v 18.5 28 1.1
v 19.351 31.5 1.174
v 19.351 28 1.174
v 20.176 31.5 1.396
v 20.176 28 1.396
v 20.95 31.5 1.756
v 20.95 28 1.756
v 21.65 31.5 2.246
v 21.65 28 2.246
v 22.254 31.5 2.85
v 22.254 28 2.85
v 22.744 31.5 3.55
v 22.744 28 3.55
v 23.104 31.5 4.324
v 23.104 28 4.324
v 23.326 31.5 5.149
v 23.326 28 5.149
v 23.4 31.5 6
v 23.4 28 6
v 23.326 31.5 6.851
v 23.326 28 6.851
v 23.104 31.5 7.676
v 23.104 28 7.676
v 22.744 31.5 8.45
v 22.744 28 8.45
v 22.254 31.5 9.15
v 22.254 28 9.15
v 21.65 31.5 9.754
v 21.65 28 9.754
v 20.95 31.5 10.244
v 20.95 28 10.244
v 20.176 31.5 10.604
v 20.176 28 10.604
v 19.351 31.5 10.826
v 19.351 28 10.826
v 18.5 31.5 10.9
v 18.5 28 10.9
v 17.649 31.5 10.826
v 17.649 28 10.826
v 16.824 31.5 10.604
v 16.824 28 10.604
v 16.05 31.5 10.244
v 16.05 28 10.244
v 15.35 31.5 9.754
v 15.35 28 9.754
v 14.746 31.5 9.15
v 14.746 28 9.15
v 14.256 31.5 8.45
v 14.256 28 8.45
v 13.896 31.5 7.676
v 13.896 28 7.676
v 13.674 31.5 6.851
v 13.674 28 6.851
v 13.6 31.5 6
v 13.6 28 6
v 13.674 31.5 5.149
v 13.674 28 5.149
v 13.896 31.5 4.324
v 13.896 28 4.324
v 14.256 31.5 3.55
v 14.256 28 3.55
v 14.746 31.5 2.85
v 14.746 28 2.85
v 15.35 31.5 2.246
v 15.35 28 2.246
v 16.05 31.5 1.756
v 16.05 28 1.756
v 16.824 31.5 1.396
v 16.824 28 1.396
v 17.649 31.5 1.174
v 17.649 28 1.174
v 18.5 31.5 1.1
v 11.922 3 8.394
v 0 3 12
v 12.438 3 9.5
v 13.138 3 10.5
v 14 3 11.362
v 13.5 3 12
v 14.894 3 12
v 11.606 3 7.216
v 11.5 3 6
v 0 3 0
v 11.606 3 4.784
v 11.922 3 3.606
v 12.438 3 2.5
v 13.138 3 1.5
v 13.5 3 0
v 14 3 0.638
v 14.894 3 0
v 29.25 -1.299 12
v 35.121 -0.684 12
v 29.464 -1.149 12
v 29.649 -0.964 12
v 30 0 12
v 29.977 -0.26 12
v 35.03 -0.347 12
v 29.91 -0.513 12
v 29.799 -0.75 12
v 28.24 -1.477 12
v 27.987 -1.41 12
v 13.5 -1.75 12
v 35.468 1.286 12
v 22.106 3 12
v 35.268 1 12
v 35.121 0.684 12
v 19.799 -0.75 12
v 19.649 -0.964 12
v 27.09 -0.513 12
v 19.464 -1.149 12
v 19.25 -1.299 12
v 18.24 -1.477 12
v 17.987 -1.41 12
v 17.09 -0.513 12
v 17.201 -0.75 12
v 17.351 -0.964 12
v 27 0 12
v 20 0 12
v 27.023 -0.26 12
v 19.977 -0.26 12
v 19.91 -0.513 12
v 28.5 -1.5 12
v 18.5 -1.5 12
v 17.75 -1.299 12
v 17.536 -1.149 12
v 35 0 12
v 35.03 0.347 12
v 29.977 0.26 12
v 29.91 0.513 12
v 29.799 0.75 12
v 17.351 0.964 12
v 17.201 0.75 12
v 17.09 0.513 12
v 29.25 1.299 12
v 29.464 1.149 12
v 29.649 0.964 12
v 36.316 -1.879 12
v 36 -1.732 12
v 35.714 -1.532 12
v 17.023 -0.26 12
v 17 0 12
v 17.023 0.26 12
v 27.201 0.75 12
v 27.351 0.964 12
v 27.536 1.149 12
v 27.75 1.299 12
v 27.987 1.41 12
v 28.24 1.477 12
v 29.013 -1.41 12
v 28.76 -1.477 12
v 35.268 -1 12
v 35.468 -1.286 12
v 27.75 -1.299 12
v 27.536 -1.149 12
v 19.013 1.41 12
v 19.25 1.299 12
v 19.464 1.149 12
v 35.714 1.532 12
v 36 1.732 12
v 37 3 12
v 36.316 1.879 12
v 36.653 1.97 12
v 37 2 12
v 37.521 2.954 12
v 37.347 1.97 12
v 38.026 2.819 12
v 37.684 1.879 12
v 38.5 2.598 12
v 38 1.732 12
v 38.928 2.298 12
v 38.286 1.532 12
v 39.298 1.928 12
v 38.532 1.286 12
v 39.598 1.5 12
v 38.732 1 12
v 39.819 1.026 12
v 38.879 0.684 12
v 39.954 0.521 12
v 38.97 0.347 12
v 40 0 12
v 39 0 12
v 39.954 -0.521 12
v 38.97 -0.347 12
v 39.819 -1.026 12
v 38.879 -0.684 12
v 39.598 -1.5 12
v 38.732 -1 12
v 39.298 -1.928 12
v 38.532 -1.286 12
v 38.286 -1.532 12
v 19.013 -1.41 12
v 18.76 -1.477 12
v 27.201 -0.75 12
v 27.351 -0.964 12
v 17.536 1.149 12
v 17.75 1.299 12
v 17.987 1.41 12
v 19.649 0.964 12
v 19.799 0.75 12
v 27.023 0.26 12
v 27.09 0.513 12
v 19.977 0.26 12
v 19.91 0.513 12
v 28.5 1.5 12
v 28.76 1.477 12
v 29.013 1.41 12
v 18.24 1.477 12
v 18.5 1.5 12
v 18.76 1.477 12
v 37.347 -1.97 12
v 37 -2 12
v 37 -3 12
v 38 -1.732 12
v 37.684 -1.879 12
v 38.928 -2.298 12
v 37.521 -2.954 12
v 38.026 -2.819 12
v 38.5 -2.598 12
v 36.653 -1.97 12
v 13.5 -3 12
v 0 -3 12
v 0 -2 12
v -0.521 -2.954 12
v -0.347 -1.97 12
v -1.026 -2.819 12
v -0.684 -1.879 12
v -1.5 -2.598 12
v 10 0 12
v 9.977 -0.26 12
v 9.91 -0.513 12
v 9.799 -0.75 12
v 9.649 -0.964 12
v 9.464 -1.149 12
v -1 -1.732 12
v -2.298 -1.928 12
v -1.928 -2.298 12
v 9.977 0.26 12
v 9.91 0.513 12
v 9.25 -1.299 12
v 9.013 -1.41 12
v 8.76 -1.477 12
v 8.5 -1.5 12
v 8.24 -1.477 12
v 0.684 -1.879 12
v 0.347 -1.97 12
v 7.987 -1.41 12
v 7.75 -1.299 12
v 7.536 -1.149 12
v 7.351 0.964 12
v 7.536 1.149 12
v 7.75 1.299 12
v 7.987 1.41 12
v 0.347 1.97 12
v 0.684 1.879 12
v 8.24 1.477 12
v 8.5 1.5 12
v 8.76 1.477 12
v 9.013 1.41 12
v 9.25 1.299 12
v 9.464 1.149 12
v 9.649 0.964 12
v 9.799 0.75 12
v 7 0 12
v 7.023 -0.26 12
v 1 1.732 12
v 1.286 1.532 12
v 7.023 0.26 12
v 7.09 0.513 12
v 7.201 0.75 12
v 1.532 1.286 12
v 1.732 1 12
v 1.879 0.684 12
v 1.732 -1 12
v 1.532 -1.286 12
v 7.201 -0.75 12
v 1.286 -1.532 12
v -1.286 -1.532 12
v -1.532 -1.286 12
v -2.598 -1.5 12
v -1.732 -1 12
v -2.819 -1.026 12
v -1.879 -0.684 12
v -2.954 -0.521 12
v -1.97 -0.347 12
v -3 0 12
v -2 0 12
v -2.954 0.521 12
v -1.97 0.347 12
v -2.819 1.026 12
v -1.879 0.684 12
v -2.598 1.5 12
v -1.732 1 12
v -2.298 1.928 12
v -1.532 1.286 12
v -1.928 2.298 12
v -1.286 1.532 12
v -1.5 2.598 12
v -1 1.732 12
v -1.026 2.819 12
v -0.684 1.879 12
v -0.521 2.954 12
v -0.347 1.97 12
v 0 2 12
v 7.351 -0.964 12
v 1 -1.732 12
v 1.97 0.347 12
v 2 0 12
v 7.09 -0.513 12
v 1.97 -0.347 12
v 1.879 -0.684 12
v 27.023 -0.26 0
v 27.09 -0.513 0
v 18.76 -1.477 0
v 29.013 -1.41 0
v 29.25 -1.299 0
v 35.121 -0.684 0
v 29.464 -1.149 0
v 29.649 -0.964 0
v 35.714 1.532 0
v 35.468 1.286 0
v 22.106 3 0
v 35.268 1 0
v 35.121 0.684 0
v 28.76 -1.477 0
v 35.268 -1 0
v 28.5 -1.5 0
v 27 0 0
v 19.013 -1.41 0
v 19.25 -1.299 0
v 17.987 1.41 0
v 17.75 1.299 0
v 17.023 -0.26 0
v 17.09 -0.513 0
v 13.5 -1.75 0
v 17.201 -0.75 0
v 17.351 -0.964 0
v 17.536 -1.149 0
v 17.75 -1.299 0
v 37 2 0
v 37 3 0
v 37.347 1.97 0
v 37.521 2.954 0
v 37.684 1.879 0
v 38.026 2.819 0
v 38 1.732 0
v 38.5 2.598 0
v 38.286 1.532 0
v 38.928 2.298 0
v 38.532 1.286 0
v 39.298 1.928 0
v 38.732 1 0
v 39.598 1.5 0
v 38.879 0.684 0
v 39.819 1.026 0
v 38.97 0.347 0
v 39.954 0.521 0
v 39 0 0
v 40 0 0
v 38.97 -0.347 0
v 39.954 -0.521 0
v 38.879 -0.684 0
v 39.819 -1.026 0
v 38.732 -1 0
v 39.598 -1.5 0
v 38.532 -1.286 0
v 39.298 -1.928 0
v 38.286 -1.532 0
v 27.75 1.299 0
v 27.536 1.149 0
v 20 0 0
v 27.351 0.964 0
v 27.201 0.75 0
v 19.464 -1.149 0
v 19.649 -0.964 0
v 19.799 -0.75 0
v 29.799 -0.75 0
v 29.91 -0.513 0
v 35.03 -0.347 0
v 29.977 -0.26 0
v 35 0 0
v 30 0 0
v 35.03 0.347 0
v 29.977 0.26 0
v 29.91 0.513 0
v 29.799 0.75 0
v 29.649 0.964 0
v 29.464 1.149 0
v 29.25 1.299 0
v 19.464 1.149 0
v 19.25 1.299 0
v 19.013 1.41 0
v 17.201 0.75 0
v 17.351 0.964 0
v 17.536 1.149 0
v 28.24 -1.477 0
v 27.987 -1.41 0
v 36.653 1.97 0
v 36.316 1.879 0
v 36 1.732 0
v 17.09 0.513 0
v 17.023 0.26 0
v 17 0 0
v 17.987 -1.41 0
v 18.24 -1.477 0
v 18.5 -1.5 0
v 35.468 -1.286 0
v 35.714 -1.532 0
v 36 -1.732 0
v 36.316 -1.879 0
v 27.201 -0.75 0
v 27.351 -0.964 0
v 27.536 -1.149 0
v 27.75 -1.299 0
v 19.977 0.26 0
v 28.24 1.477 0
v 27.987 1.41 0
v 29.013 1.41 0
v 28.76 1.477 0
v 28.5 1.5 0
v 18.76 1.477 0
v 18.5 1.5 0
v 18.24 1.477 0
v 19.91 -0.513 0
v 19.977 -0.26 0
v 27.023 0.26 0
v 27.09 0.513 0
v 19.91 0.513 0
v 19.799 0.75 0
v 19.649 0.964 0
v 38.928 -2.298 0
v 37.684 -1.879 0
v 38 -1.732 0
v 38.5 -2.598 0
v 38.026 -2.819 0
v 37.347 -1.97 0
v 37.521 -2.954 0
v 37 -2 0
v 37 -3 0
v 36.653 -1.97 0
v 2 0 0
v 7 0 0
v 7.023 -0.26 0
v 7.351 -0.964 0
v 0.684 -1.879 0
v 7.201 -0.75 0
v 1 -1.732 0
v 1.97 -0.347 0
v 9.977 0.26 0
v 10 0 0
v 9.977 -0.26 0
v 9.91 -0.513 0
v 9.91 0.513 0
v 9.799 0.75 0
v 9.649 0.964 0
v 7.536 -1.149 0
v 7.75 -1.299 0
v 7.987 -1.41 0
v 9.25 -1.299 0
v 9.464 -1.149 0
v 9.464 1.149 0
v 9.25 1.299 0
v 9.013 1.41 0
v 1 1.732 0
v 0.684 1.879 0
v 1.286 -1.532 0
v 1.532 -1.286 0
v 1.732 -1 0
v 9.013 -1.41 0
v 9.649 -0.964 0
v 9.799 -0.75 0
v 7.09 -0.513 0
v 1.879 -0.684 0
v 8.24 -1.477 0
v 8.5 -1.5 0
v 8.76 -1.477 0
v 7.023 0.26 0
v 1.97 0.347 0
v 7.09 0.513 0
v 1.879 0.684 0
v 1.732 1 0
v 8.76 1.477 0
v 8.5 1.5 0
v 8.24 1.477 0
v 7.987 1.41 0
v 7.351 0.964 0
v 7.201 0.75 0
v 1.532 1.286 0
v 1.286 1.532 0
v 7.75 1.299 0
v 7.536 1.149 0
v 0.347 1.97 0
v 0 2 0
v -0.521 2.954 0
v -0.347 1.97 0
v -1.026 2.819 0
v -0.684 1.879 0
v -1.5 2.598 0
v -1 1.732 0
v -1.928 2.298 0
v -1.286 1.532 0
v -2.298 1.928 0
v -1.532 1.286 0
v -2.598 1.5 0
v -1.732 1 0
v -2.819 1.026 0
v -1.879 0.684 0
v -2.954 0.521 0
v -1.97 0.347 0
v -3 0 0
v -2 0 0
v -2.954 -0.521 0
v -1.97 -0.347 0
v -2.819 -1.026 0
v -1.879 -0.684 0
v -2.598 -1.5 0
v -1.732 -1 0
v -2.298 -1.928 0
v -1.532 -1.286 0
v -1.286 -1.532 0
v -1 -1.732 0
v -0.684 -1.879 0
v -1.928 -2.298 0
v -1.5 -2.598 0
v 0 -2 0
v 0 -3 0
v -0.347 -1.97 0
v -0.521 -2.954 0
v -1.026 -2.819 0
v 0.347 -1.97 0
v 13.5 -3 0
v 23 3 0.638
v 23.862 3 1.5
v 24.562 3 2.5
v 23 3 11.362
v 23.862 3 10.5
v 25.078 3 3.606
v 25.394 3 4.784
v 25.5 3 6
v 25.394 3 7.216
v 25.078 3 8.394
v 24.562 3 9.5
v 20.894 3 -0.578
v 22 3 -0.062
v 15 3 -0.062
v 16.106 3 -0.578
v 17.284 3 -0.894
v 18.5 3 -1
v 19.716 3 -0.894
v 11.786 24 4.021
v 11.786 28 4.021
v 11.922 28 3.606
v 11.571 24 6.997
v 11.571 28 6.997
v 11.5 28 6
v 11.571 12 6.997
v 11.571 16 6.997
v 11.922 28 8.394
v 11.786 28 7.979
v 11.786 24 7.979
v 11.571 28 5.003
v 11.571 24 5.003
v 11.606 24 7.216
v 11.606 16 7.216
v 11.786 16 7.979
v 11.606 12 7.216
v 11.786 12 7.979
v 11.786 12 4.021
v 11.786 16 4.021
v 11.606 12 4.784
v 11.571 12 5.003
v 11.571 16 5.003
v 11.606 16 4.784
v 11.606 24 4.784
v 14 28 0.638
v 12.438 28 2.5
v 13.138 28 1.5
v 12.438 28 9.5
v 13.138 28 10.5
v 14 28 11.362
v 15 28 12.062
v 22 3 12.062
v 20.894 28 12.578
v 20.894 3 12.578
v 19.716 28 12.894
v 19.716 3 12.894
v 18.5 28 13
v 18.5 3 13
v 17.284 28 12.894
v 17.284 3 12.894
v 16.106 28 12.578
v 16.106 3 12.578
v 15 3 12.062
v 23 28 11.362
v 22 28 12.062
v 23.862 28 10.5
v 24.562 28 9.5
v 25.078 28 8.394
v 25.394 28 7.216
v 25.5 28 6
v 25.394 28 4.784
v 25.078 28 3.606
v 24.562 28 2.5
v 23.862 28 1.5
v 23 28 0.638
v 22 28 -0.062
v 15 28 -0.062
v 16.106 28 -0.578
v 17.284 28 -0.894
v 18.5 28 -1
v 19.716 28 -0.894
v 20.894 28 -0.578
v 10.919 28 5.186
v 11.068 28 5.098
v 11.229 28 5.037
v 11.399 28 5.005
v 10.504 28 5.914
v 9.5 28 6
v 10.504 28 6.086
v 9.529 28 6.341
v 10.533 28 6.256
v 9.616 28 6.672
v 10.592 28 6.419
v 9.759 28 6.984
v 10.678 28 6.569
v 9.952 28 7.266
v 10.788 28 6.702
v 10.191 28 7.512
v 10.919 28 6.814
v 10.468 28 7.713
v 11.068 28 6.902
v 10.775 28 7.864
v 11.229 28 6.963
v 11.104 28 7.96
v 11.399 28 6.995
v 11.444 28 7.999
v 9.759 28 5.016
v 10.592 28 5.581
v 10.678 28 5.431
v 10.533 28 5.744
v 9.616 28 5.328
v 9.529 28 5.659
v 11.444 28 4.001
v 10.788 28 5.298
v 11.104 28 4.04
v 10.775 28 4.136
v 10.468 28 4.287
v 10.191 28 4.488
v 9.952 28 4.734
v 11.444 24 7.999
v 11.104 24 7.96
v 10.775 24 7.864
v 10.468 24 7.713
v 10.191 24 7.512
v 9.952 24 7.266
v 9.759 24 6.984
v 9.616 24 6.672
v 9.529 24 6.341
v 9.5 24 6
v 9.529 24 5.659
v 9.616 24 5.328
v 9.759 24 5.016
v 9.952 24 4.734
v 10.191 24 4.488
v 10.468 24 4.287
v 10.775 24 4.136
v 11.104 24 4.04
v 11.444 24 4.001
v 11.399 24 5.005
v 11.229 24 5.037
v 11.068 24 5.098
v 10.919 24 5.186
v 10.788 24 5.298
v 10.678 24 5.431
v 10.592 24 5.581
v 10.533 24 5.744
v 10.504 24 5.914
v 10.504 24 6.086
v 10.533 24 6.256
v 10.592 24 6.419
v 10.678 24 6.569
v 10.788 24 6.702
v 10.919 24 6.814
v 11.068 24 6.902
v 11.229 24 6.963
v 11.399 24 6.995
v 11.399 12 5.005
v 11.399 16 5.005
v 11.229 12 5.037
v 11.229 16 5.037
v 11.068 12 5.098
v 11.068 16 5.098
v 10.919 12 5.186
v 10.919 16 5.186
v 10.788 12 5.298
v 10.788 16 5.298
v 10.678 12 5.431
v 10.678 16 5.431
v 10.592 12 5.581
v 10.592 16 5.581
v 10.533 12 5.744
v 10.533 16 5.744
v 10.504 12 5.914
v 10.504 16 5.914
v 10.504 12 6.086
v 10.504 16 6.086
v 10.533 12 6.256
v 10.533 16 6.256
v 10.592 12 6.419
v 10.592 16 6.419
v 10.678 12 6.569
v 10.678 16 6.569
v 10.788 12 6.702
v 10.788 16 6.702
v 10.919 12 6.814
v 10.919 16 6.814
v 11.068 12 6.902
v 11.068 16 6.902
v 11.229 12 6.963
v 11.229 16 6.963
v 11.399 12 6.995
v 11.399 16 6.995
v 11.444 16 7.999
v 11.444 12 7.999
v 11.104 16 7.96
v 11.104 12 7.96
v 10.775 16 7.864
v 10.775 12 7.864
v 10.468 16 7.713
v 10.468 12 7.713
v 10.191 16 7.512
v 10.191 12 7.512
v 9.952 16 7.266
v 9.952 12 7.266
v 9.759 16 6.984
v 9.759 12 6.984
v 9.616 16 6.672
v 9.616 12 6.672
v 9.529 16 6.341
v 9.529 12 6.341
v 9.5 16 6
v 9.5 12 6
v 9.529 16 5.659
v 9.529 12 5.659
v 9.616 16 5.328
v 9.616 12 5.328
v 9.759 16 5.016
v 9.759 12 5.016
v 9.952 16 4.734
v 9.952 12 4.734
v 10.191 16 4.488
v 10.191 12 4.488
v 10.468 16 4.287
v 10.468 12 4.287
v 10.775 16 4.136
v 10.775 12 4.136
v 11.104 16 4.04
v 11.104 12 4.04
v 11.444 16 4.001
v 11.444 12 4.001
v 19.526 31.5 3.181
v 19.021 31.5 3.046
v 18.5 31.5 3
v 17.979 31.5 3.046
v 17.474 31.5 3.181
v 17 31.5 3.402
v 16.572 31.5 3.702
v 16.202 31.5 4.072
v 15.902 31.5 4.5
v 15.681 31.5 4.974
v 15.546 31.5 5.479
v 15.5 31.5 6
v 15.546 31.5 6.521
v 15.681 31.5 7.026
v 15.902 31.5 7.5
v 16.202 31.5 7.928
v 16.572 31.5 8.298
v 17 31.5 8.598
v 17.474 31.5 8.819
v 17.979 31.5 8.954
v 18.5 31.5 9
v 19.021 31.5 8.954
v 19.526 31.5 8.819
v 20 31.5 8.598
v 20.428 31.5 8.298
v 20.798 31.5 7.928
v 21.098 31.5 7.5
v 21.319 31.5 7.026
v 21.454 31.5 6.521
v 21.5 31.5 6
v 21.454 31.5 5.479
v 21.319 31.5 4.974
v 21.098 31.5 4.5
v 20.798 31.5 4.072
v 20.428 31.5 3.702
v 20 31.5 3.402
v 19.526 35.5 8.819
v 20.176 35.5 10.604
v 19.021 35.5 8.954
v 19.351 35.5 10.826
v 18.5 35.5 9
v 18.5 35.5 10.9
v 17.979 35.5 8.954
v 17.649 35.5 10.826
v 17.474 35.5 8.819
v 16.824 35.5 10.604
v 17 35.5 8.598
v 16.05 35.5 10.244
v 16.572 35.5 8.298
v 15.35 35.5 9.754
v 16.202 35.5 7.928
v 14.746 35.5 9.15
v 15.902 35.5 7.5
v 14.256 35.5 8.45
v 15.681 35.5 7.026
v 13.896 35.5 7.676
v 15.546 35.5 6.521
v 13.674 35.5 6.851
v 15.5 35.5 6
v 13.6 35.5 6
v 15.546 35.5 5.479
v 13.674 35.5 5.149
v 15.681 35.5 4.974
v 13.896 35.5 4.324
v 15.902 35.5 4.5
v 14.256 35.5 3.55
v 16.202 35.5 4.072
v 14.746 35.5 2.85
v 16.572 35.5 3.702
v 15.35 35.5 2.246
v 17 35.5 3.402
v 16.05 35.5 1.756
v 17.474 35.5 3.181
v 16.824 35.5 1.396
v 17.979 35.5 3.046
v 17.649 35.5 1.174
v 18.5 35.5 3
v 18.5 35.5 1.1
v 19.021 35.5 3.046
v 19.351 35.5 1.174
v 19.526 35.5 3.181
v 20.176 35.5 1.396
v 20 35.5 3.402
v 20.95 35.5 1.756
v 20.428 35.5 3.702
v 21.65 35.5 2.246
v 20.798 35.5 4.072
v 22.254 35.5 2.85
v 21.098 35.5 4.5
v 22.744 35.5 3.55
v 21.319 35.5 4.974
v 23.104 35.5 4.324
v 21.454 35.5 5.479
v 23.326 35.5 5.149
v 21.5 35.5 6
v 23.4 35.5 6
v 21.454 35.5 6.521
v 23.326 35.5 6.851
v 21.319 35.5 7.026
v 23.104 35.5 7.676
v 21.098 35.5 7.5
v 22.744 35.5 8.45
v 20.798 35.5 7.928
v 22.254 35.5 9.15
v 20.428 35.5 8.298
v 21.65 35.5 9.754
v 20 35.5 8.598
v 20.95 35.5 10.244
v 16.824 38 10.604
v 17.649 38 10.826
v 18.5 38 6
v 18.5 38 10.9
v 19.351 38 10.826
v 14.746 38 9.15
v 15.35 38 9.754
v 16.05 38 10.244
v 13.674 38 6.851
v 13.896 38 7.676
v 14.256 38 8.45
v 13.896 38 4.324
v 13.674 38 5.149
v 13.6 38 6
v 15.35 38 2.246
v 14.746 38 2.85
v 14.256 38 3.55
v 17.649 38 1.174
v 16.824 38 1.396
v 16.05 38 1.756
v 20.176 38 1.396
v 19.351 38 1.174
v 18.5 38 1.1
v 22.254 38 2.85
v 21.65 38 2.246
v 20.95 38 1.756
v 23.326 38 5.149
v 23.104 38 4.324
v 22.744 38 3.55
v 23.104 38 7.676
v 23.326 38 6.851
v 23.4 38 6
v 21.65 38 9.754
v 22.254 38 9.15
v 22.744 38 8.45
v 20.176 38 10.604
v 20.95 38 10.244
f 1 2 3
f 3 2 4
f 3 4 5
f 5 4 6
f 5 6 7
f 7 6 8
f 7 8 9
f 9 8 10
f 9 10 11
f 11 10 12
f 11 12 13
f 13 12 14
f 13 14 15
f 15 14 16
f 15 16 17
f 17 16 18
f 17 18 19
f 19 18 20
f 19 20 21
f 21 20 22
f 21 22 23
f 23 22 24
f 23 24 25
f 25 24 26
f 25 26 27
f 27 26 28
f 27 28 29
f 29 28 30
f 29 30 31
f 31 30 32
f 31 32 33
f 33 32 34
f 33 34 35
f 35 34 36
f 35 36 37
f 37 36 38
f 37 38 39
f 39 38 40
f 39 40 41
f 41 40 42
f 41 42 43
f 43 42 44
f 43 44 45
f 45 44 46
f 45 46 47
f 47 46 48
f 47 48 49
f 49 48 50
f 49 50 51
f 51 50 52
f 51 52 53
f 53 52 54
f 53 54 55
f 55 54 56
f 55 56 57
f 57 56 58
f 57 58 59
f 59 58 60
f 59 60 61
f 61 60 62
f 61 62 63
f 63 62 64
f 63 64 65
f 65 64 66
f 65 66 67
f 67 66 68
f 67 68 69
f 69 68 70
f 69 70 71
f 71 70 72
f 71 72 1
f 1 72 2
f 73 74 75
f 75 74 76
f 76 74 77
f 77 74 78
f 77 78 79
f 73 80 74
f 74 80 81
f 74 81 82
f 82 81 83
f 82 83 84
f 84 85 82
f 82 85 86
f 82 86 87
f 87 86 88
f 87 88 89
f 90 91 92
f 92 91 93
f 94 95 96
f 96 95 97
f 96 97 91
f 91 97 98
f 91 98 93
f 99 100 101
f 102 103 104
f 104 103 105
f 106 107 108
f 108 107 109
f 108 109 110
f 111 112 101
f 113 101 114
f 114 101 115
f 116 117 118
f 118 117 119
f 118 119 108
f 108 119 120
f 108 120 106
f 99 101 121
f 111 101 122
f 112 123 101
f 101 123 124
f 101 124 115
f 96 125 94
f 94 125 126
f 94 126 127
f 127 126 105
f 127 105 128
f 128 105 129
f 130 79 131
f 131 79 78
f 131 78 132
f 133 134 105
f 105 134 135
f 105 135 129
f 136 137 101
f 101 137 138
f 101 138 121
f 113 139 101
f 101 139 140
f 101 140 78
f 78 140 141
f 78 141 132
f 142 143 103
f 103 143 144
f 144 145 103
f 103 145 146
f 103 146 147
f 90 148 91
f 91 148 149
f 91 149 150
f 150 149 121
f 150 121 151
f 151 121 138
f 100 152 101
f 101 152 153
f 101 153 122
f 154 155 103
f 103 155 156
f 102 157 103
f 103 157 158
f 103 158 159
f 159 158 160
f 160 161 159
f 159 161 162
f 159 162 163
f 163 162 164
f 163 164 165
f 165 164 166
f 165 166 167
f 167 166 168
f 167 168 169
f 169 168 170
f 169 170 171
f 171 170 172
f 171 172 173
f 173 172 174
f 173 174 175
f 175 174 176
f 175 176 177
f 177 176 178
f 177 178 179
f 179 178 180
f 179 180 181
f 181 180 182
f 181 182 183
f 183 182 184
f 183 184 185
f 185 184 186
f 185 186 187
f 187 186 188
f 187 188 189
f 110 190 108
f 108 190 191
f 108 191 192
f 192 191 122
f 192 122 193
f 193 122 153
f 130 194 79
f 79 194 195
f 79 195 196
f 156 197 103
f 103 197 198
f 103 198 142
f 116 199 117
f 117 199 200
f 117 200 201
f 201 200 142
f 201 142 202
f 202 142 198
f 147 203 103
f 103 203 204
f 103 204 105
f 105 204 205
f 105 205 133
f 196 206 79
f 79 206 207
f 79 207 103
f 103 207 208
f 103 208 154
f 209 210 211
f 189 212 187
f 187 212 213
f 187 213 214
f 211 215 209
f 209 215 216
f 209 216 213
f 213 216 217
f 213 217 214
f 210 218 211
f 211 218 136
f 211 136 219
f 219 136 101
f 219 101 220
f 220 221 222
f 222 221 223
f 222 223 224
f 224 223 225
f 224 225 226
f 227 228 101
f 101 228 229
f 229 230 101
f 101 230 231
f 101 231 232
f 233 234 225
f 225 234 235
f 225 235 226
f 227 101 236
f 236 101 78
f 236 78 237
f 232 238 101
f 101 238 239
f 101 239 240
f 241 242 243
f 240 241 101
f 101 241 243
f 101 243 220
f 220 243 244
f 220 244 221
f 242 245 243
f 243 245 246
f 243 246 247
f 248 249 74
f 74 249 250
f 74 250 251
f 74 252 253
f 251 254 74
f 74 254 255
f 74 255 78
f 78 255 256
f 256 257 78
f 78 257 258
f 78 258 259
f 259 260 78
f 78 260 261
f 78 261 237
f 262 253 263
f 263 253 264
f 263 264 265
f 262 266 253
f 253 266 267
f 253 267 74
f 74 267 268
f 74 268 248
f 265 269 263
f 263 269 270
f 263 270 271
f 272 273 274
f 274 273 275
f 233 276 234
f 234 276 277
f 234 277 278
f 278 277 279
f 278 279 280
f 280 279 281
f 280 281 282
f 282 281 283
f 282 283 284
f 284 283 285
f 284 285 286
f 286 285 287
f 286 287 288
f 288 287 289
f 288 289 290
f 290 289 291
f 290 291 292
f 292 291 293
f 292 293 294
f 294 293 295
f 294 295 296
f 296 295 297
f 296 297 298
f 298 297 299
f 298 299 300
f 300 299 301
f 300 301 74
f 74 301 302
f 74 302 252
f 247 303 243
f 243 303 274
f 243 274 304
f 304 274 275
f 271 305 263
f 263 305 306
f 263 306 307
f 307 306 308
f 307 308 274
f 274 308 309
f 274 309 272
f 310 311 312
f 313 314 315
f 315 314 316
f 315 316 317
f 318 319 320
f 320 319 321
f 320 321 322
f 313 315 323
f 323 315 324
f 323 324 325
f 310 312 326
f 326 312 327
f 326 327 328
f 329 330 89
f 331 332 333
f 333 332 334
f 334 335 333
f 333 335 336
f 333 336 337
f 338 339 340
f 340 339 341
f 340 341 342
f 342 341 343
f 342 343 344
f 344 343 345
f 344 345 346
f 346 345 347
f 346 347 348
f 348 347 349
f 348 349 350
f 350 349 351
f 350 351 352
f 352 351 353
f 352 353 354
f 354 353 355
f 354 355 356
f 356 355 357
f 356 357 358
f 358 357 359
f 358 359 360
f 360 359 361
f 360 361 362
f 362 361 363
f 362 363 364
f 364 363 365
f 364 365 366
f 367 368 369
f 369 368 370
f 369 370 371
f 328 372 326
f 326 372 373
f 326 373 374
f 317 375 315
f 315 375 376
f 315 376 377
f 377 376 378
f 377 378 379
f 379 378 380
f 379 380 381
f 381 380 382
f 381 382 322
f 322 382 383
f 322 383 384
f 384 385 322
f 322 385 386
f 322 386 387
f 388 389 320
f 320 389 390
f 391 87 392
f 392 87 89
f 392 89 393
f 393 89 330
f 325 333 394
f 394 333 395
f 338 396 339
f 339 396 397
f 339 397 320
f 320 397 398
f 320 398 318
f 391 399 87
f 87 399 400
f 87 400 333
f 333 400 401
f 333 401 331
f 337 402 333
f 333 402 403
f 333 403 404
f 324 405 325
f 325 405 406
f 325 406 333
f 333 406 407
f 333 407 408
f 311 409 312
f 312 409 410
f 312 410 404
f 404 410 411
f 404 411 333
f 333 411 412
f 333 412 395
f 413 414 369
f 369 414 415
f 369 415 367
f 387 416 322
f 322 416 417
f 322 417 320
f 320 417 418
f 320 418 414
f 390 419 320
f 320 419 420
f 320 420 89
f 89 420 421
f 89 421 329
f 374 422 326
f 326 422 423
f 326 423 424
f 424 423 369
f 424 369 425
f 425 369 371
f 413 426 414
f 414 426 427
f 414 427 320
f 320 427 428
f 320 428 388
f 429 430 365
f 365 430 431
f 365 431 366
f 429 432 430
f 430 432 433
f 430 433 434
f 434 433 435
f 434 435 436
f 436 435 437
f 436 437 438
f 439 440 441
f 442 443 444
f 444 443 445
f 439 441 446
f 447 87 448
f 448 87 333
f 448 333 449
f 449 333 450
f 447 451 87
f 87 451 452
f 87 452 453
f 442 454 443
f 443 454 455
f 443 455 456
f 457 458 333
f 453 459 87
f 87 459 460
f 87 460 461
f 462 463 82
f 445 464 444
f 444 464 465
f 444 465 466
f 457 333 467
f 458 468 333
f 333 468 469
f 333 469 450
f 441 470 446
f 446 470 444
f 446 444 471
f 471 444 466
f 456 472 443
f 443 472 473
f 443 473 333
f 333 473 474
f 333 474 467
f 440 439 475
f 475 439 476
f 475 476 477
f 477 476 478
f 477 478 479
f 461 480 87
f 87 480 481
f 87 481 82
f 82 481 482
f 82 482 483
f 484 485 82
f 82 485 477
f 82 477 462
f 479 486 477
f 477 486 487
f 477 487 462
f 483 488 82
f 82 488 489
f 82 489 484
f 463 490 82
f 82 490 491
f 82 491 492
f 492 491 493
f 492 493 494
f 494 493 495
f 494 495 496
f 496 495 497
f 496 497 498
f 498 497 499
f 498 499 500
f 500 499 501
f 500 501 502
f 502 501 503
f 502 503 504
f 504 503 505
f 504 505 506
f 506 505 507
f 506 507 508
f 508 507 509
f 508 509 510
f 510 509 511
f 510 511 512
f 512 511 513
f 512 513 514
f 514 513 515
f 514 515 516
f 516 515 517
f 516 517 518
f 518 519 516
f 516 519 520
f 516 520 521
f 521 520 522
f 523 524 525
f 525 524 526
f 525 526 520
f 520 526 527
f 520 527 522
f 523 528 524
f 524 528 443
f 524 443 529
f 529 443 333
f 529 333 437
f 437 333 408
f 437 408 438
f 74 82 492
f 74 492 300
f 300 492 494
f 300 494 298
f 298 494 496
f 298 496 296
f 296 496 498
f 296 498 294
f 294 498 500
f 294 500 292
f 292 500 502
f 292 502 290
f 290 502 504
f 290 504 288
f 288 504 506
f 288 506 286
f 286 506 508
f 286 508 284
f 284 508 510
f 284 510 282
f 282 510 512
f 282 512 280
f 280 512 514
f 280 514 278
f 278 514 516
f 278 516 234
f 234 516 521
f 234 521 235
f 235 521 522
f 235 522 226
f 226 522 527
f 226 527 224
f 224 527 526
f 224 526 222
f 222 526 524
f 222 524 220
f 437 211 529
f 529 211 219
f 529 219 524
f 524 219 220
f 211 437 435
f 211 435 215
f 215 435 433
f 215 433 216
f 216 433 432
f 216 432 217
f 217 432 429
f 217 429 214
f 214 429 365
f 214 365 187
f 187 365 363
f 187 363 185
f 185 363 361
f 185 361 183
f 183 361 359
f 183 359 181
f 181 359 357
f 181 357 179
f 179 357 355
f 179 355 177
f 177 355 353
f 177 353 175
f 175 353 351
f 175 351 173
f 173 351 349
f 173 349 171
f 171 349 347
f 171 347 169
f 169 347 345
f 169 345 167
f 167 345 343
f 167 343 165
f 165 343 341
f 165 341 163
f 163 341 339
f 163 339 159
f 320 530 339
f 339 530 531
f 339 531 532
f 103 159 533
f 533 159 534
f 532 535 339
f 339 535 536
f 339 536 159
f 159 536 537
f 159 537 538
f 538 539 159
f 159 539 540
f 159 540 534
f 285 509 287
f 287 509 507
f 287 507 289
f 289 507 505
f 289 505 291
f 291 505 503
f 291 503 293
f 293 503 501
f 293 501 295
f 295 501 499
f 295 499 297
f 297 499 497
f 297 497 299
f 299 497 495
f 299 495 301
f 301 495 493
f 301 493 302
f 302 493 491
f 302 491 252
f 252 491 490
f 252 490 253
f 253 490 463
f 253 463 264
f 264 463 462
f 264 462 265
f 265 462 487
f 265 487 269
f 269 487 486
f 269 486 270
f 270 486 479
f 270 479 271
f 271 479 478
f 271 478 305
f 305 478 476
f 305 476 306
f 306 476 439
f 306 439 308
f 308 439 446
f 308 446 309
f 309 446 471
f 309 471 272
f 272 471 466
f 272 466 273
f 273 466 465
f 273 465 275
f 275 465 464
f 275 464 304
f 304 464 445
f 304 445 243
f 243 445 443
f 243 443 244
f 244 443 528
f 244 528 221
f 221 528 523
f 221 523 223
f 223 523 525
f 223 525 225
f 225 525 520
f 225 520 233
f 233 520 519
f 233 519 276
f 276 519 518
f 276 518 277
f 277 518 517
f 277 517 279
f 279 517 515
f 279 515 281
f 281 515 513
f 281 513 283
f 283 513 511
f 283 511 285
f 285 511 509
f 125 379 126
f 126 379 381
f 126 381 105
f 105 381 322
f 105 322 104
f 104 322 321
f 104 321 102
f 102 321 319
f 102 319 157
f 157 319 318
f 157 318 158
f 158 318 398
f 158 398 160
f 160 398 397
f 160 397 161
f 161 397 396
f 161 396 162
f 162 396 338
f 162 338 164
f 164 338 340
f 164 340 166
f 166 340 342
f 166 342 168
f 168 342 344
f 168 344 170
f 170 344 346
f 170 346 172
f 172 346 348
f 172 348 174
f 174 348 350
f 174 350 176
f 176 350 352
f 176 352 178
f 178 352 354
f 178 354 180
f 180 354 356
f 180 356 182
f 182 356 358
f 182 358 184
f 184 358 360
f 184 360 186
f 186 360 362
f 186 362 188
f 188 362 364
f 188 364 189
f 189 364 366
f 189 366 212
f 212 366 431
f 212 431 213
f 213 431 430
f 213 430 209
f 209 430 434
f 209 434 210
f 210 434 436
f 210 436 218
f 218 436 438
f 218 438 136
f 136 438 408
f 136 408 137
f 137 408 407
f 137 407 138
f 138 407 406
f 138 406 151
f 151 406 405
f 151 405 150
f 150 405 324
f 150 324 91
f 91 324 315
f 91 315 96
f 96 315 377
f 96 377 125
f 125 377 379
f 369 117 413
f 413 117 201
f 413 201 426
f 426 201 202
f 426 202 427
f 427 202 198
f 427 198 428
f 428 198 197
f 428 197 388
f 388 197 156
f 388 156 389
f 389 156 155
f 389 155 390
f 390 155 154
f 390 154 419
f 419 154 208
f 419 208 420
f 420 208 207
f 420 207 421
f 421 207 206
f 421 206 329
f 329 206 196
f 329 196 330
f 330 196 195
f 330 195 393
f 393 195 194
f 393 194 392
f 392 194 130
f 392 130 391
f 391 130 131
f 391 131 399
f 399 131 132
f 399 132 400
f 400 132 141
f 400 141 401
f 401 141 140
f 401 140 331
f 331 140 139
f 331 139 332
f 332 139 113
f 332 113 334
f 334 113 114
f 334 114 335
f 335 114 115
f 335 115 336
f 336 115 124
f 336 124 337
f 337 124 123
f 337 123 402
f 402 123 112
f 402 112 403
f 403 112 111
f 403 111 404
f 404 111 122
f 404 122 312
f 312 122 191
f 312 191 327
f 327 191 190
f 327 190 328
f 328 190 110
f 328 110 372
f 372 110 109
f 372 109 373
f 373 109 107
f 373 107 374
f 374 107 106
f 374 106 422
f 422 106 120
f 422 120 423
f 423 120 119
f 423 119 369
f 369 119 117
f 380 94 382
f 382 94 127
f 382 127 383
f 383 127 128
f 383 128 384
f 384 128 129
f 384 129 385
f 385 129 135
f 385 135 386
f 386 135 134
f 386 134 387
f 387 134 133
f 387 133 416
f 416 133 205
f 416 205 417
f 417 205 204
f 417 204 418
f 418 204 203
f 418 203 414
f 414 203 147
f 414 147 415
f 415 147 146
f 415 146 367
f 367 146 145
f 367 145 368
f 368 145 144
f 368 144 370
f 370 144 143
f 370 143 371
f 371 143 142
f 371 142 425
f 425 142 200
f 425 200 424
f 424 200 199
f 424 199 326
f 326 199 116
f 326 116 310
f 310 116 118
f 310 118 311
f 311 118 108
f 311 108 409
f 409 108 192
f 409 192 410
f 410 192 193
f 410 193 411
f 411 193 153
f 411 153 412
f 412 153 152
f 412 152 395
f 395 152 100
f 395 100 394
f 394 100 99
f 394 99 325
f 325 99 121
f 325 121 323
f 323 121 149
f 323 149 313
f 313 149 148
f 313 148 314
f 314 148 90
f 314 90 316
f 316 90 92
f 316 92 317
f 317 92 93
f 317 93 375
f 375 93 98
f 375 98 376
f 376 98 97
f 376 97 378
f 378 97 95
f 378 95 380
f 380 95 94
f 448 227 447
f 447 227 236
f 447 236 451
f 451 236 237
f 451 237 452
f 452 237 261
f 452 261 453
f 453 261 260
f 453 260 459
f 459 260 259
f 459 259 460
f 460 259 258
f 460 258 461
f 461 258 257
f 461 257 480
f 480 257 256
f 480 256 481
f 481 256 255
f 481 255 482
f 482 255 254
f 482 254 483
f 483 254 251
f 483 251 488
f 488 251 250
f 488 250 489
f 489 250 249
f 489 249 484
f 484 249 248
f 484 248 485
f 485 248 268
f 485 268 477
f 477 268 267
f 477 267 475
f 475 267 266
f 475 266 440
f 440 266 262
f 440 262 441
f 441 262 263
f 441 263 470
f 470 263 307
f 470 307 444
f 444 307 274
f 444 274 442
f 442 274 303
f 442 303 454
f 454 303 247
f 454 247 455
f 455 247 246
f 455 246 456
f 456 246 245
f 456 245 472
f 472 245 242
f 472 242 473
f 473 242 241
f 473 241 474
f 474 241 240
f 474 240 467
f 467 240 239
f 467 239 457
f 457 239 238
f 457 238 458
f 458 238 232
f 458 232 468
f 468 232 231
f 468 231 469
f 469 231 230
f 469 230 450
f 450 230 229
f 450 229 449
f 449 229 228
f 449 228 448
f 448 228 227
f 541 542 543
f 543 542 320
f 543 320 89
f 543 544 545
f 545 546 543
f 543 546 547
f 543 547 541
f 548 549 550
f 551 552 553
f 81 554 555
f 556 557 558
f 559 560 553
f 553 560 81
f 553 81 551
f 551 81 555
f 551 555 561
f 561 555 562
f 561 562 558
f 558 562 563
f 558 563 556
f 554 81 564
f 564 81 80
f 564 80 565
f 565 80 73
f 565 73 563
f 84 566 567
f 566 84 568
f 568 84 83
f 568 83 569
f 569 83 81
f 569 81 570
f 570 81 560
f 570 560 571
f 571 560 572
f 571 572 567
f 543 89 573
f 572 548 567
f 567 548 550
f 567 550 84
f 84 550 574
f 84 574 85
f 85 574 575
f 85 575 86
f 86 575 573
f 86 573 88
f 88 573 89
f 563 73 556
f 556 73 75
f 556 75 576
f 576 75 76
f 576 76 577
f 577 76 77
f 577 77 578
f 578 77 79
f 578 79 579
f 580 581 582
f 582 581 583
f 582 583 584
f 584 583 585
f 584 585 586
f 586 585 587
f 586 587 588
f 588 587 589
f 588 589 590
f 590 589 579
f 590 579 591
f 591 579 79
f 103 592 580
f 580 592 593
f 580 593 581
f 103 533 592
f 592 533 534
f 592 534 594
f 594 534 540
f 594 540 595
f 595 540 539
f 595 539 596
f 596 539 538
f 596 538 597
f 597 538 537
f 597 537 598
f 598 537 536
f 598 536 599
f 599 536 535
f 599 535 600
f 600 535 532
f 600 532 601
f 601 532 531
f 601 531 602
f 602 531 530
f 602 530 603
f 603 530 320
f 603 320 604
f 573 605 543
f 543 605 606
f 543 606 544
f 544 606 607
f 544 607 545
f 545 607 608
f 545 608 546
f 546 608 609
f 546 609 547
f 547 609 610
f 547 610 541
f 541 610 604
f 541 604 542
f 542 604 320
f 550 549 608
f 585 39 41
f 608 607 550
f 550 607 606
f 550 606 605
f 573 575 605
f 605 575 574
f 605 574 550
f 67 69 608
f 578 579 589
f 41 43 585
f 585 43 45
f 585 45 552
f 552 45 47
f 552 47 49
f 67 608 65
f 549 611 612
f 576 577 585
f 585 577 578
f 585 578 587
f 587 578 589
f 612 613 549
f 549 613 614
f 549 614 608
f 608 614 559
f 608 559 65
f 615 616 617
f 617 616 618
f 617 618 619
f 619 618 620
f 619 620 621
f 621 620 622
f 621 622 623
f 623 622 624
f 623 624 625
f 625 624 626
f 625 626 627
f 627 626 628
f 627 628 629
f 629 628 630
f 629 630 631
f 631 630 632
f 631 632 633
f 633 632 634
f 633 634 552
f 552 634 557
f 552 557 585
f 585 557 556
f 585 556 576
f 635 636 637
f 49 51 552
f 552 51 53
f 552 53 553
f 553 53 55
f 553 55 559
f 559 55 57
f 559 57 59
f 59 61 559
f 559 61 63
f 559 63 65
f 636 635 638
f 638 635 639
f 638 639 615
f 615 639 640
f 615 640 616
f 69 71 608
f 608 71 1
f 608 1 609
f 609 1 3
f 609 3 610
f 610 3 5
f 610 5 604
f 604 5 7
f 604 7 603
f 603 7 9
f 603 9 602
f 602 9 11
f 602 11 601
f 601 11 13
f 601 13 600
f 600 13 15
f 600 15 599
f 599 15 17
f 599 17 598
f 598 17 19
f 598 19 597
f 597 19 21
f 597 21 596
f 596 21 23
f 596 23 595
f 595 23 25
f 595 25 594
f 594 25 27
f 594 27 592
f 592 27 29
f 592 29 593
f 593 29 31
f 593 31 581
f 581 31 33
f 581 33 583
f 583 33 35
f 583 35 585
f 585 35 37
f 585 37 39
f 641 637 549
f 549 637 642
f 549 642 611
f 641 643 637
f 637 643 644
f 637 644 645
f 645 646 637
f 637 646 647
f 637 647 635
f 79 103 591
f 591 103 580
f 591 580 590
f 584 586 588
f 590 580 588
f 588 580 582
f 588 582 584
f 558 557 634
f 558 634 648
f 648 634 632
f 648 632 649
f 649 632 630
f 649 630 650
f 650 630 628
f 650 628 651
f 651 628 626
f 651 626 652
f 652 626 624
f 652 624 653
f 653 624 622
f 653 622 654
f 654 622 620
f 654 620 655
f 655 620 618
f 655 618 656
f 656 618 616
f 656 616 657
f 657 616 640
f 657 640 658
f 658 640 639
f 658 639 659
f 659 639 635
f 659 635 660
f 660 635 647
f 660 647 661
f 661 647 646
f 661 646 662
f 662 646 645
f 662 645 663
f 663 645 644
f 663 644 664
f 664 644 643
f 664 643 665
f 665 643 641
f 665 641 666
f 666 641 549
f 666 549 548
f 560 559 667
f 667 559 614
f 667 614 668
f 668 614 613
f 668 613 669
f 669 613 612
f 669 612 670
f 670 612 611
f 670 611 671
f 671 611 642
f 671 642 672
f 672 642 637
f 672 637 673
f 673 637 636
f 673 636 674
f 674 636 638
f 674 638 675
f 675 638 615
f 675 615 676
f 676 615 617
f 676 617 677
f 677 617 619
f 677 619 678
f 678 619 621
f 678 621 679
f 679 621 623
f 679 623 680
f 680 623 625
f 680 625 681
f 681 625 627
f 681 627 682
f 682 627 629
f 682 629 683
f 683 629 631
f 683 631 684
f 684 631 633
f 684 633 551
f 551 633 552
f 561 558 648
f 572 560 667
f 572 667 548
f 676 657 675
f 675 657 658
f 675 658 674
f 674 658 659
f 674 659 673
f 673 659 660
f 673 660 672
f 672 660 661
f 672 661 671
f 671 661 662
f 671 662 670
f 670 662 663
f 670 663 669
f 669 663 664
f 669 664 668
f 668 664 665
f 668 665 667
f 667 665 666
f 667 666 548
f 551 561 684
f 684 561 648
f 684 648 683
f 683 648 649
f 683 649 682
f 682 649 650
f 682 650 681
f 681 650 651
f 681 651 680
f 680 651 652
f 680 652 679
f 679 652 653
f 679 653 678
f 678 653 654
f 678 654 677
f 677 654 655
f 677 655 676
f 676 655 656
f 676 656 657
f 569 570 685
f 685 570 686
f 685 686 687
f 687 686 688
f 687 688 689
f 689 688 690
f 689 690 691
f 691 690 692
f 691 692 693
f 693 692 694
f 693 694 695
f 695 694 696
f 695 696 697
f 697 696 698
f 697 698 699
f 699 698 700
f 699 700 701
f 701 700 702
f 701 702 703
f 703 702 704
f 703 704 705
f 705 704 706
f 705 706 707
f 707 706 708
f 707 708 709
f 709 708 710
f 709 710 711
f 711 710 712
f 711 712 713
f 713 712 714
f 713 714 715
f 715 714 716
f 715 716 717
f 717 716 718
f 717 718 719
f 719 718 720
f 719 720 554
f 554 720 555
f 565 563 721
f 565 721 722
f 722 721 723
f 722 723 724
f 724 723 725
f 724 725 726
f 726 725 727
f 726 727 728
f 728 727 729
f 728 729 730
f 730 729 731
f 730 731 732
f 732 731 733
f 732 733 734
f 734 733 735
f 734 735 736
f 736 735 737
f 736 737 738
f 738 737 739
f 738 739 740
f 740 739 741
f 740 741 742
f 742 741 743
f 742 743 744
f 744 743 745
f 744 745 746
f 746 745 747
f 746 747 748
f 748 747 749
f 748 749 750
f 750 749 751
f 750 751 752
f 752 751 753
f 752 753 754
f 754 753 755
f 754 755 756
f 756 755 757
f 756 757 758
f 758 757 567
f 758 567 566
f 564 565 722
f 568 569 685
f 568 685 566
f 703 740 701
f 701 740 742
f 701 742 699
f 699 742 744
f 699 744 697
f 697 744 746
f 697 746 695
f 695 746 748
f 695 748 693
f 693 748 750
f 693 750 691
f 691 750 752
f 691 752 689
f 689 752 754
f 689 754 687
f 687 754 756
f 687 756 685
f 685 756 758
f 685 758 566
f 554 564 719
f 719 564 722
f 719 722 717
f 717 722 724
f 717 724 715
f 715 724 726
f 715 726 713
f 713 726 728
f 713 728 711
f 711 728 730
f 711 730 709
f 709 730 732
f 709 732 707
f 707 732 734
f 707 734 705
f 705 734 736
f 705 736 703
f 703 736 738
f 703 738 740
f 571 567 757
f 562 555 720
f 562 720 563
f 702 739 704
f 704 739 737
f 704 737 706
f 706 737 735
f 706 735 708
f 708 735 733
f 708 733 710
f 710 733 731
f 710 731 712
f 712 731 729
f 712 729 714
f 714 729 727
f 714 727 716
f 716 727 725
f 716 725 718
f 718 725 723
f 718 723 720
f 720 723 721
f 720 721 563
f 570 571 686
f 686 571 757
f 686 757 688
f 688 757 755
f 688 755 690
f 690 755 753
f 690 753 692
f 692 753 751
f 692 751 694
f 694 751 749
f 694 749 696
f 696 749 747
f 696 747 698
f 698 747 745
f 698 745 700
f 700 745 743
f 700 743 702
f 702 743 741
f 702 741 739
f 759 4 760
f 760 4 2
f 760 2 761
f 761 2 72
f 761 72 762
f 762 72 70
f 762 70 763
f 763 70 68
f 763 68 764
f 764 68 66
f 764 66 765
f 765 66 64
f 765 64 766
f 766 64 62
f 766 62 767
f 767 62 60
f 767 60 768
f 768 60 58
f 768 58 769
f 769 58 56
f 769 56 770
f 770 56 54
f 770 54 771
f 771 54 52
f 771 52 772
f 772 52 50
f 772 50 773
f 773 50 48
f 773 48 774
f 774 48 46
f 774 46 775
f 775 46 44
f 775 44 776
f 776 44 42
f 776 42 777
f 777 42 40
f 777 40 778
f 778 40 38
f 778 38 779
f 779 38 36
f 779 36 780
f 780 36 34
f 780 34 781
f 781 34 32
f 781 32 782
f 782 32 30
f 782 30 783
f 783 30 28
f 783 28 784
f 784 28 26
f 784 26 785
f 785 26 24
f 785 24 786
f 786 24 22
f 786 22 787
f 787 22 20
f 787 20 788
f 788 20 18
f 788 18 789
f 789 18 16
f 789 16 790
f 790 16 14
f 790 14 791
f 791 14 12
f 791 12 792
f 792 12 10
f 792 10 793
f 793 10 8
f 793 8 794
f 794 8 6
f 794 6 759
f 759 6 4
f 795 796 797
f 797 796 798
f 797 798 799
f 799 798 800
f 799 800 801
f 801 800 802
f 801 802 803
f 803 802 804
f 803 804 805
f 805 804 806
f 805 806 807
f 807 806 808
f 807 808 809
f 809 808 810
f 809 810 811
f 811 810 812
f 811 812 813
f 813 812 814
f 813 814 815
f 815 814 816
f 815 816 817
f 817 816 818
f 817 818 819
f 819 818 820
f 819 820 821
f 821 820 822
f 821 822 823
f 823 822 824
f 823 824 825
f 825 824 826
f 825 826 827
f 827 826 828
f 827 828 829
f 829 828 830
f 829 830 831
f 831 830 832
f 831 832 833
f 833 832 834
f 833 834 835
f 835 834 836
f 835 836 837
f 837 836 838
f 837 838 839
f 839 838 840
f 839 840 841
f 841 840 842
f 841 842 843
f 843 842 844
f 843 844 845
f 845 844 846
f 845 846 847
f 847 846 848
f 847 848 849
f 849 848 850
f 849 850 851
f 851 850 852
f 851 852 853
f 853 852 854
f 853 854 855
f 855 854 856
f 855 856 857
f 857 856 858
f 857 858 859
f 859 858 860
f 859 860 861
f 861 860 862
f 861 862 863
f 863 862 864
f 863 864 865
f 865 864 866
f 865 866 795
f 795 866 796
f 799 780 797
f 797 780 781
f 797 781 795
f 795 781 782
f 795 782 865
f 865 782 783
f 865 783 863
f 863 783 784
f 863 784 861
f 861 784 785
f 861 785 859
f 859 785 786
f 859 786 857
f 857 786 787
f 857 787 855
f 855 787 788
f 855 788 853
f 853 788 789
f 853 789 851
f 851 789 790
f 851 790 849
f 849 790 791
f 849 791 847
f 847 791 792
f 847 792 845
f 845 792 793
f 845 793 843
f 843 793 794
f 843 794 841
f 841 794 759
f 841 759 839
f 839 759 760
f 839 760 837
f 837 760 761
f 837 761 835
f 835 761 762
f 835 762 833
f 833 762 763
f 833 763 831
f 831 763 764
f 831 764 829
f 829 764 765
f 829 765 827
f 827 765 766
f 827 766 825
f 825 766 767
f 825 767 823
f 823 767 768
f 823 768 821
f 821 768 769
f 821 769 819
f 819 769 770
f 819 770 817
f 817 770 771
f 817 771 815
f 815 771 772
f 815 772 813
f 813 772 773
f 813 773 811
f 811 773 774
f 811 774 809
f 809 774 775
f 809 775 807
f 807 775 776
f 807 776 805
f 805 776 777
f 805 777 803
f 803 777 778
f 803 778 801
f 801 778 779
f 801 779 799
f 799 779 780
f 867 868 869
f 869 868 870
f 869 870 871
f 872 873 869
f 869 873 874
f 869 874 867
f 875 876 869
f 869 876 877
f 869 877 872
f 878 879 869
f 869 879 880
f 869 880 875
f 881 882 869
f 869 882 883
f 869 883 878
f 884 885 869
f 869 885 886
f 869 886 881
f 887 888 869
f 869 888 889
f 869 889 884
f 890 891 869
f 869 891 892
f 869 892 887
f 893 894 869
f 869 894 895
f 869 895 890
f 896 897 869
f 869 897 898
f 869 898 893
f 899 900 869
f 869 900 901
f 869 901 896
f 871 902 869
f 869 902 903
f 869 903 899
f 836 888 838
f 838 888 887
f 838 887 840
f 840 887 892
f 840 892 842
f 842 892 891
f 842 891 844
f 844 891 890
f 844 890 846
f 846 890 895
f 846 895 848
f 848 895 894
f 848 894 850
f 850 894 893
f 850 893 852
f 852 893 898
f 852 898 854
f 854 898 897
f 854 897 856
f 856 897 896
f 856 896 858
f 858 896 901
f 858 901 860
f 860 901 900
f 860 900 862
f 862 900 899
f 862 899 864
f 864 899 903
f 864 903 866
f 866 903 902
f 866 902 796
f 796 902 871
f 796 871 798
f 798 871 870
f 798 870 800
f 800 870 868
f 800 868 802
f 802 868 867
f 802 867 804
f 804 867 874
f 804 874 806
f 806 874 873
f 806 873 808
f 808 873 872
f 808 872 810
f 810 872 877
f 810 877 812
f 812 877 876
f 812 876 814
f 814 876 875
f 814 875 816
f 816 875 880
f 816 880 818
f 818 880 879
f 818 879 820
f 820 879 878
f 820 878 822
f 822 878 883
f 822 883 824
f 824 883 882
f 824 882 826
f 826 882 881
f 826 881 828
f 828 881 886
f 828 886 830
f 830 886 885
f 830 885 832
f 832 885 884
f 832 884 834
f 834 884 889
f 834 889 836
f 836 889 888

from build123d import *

# Parameters (mm, degrees)
SKETCH_1_R                 = 2
EXTRUDE_1_DEPTH            = 12
SKETCH_2_R                 = 1.5
CUT_EXTRUDE_1_DEPTH        = 42.868842831
PATTERN_LINEAR_1_COUNT     = 2
PATTERN_LINEAR_1_PITCH     = 10
PATTERN_LINEAR_1_COL_COUNT = 2
PATTERN_LINEAR_1_COL_PITCH = 10
SKETCH_4_R                 = 7
EXTRUDE_2_DEPTH            = 25
SKETCH_7_R                 = 2
SKETCH_7_R_2               = 1
EXTRUDE_3_DEPTH            = 4
EXTRUDE_5_DEPTH            = 2
SKETCH_10_R                = 4.9
EXTRUDE_6_DEPTH            = 10
CUT_EXTRUDE_START          = -4
SKETCH_13_R                = 4.9
SKETCH_13_R_2              = 3
CUT_EXTRUDE_2_DEPTH        = 4


with BuildPart() as part:
    # 草图1 → 凸台-拉伸1 (new body)
    with BuildSketch(Plane.XY):
        with BuildLine():
            Line((0, 3), (37, 3))
            ThreePointArc((37, 3), (40, 0), (37, -3))
            Line((37, -3), (0, -3))
            ThreePointArc((0, -3), (-3, 0), (0, 3))
        make_face()
        Circle(SKETCH_1_R, mode=Mode.SUBTRACT)
        with Locations((37, 0)):
            Circle(SKETCH_1_R, mode=Mode.SUBTRACT)
    extrude(amount=EXTRUDE_1_DEPTH)

    # 草图2 → 切除-拉伸1 (cut, through all)
    with BuildSketch(Plane.XY.offset(12)):
        with Locations((18.5, 0)):
            Circle(SKETCH_2_R)
    cut_extrude_1 = extrude(amount=-CUT_EXTRUDE_1_DEPTH, mode=Mode.SUBTRACT)

    # 阵列(线性)1: 切除-拉伸1 ×2
    with Locations(*[(-i * PATTERN_LINEAR_1_PITCH, 0, 0) for i in range(1, PATTERN_LINEAR_1_COUNT)]):
        add(cut_extrude_1, mode=Mode.SUBTRACT)

    # 阵列(线性)1 col: 切除-拉伸1 ×2
    with Locations(*[(i * PATTERN_LINEAR_1_COL_PITCH, 0, 0) for i in range(1, PATTERN_LINEAR_1_COL_COUNT)]):
        add(cut_extrude_1, mode=Mode.SUBTRACT)

    # 草图4 → 凸台-拉伸2 (add)
    with BuildSketch(Plane(origin=(0, 3, 0), x_dir=(1, 0, 0), z_dir=(0, 1, 0))):
        with Locations(Location((18.5, -6, 0), (0, 0, 58.997280866))):
            Circle(SKETCH_4_R)
    extrude(amount=EXTRUDE_2_DEPTH)

    # 草图7 → 凸台-拉伸3 (add)
    with BuildSketch(Plane(origin=(0, 28, 0), x_dir=(1, 0, 0), z_dir=(0, 1, 0))):
        with Locations((11.5, -6)):
            Circle(SKETCH_7_R)
        with Locations((11.5, -6)):
            Circle(SKETCH_7_R_2, mode=Mode.SUBTRACT)
    extrude(amount=-EXTRUDE_3_DEPTH)

    # 草图9 → 凸台-拉伸5 (add, symmetric)
    with BuildSketch(Plane(origin=(0, 14, 0), x_dir=(-1, 0, 0), z_dir=(0, -1, 0))):
        with BuildLine():
            ThreePointArc((-11.785714286, -7.979486637), (-11.66092193, -7.492317377), (-11.571428571, -6.997445717))
            ThreePointArc((-11.571428571, -6.997445717), (-10.5, -6), (-11.571428571, -5.002554283))
            ThreePointArc((-11.571428571, -5.002554283), (-11.66092193, -4.507682623), (-11.785714286, -4.020513363))
            ThreePointArc((-11.785714286, -4.020513363), (-9.5, -6), (-11.785714286, -7.979486637))
        make_face()
    extrude(amount=EXTRUDE_5_DEPTH, both=True)

    # 草图10 → 凸台-拉伸6 (add)
    with BuildSketch(Plane(origin=(0, 28, 0), x_dir=(1, 0, 0), z_dir=(0, 1, 0))):
        with Locations(Location((18.5, -6, 0), (0, 0, 270))):
            Circle(SKETCH_10_R)
    extrude(amount=EXTRUDE_6_DEPTH)

    # 草图13 → 切除-拉伸2 (cut)
    with BuildSketch(Plane(origin=(0, 35.5, 0), x_dir=(1, 0, 0), z_dir=(0, 1, 0)).offset(CUT_EXTRUDE_START)):
        with Locations(Location((18.5, -6, 0), (0, 0, 270))):
            Circle(SKETCH_13_R)
        with Locations(Location((18.5, -6, 0), (0, 0, 270))):
            Circle(SKETCH_13_R_2, mode=Mode.SUBTRACT)
    extrude(amount=CUT_EXTRUDE_2_DEPTH, mode=Mode.SUBTRACT)


solid = part.part
